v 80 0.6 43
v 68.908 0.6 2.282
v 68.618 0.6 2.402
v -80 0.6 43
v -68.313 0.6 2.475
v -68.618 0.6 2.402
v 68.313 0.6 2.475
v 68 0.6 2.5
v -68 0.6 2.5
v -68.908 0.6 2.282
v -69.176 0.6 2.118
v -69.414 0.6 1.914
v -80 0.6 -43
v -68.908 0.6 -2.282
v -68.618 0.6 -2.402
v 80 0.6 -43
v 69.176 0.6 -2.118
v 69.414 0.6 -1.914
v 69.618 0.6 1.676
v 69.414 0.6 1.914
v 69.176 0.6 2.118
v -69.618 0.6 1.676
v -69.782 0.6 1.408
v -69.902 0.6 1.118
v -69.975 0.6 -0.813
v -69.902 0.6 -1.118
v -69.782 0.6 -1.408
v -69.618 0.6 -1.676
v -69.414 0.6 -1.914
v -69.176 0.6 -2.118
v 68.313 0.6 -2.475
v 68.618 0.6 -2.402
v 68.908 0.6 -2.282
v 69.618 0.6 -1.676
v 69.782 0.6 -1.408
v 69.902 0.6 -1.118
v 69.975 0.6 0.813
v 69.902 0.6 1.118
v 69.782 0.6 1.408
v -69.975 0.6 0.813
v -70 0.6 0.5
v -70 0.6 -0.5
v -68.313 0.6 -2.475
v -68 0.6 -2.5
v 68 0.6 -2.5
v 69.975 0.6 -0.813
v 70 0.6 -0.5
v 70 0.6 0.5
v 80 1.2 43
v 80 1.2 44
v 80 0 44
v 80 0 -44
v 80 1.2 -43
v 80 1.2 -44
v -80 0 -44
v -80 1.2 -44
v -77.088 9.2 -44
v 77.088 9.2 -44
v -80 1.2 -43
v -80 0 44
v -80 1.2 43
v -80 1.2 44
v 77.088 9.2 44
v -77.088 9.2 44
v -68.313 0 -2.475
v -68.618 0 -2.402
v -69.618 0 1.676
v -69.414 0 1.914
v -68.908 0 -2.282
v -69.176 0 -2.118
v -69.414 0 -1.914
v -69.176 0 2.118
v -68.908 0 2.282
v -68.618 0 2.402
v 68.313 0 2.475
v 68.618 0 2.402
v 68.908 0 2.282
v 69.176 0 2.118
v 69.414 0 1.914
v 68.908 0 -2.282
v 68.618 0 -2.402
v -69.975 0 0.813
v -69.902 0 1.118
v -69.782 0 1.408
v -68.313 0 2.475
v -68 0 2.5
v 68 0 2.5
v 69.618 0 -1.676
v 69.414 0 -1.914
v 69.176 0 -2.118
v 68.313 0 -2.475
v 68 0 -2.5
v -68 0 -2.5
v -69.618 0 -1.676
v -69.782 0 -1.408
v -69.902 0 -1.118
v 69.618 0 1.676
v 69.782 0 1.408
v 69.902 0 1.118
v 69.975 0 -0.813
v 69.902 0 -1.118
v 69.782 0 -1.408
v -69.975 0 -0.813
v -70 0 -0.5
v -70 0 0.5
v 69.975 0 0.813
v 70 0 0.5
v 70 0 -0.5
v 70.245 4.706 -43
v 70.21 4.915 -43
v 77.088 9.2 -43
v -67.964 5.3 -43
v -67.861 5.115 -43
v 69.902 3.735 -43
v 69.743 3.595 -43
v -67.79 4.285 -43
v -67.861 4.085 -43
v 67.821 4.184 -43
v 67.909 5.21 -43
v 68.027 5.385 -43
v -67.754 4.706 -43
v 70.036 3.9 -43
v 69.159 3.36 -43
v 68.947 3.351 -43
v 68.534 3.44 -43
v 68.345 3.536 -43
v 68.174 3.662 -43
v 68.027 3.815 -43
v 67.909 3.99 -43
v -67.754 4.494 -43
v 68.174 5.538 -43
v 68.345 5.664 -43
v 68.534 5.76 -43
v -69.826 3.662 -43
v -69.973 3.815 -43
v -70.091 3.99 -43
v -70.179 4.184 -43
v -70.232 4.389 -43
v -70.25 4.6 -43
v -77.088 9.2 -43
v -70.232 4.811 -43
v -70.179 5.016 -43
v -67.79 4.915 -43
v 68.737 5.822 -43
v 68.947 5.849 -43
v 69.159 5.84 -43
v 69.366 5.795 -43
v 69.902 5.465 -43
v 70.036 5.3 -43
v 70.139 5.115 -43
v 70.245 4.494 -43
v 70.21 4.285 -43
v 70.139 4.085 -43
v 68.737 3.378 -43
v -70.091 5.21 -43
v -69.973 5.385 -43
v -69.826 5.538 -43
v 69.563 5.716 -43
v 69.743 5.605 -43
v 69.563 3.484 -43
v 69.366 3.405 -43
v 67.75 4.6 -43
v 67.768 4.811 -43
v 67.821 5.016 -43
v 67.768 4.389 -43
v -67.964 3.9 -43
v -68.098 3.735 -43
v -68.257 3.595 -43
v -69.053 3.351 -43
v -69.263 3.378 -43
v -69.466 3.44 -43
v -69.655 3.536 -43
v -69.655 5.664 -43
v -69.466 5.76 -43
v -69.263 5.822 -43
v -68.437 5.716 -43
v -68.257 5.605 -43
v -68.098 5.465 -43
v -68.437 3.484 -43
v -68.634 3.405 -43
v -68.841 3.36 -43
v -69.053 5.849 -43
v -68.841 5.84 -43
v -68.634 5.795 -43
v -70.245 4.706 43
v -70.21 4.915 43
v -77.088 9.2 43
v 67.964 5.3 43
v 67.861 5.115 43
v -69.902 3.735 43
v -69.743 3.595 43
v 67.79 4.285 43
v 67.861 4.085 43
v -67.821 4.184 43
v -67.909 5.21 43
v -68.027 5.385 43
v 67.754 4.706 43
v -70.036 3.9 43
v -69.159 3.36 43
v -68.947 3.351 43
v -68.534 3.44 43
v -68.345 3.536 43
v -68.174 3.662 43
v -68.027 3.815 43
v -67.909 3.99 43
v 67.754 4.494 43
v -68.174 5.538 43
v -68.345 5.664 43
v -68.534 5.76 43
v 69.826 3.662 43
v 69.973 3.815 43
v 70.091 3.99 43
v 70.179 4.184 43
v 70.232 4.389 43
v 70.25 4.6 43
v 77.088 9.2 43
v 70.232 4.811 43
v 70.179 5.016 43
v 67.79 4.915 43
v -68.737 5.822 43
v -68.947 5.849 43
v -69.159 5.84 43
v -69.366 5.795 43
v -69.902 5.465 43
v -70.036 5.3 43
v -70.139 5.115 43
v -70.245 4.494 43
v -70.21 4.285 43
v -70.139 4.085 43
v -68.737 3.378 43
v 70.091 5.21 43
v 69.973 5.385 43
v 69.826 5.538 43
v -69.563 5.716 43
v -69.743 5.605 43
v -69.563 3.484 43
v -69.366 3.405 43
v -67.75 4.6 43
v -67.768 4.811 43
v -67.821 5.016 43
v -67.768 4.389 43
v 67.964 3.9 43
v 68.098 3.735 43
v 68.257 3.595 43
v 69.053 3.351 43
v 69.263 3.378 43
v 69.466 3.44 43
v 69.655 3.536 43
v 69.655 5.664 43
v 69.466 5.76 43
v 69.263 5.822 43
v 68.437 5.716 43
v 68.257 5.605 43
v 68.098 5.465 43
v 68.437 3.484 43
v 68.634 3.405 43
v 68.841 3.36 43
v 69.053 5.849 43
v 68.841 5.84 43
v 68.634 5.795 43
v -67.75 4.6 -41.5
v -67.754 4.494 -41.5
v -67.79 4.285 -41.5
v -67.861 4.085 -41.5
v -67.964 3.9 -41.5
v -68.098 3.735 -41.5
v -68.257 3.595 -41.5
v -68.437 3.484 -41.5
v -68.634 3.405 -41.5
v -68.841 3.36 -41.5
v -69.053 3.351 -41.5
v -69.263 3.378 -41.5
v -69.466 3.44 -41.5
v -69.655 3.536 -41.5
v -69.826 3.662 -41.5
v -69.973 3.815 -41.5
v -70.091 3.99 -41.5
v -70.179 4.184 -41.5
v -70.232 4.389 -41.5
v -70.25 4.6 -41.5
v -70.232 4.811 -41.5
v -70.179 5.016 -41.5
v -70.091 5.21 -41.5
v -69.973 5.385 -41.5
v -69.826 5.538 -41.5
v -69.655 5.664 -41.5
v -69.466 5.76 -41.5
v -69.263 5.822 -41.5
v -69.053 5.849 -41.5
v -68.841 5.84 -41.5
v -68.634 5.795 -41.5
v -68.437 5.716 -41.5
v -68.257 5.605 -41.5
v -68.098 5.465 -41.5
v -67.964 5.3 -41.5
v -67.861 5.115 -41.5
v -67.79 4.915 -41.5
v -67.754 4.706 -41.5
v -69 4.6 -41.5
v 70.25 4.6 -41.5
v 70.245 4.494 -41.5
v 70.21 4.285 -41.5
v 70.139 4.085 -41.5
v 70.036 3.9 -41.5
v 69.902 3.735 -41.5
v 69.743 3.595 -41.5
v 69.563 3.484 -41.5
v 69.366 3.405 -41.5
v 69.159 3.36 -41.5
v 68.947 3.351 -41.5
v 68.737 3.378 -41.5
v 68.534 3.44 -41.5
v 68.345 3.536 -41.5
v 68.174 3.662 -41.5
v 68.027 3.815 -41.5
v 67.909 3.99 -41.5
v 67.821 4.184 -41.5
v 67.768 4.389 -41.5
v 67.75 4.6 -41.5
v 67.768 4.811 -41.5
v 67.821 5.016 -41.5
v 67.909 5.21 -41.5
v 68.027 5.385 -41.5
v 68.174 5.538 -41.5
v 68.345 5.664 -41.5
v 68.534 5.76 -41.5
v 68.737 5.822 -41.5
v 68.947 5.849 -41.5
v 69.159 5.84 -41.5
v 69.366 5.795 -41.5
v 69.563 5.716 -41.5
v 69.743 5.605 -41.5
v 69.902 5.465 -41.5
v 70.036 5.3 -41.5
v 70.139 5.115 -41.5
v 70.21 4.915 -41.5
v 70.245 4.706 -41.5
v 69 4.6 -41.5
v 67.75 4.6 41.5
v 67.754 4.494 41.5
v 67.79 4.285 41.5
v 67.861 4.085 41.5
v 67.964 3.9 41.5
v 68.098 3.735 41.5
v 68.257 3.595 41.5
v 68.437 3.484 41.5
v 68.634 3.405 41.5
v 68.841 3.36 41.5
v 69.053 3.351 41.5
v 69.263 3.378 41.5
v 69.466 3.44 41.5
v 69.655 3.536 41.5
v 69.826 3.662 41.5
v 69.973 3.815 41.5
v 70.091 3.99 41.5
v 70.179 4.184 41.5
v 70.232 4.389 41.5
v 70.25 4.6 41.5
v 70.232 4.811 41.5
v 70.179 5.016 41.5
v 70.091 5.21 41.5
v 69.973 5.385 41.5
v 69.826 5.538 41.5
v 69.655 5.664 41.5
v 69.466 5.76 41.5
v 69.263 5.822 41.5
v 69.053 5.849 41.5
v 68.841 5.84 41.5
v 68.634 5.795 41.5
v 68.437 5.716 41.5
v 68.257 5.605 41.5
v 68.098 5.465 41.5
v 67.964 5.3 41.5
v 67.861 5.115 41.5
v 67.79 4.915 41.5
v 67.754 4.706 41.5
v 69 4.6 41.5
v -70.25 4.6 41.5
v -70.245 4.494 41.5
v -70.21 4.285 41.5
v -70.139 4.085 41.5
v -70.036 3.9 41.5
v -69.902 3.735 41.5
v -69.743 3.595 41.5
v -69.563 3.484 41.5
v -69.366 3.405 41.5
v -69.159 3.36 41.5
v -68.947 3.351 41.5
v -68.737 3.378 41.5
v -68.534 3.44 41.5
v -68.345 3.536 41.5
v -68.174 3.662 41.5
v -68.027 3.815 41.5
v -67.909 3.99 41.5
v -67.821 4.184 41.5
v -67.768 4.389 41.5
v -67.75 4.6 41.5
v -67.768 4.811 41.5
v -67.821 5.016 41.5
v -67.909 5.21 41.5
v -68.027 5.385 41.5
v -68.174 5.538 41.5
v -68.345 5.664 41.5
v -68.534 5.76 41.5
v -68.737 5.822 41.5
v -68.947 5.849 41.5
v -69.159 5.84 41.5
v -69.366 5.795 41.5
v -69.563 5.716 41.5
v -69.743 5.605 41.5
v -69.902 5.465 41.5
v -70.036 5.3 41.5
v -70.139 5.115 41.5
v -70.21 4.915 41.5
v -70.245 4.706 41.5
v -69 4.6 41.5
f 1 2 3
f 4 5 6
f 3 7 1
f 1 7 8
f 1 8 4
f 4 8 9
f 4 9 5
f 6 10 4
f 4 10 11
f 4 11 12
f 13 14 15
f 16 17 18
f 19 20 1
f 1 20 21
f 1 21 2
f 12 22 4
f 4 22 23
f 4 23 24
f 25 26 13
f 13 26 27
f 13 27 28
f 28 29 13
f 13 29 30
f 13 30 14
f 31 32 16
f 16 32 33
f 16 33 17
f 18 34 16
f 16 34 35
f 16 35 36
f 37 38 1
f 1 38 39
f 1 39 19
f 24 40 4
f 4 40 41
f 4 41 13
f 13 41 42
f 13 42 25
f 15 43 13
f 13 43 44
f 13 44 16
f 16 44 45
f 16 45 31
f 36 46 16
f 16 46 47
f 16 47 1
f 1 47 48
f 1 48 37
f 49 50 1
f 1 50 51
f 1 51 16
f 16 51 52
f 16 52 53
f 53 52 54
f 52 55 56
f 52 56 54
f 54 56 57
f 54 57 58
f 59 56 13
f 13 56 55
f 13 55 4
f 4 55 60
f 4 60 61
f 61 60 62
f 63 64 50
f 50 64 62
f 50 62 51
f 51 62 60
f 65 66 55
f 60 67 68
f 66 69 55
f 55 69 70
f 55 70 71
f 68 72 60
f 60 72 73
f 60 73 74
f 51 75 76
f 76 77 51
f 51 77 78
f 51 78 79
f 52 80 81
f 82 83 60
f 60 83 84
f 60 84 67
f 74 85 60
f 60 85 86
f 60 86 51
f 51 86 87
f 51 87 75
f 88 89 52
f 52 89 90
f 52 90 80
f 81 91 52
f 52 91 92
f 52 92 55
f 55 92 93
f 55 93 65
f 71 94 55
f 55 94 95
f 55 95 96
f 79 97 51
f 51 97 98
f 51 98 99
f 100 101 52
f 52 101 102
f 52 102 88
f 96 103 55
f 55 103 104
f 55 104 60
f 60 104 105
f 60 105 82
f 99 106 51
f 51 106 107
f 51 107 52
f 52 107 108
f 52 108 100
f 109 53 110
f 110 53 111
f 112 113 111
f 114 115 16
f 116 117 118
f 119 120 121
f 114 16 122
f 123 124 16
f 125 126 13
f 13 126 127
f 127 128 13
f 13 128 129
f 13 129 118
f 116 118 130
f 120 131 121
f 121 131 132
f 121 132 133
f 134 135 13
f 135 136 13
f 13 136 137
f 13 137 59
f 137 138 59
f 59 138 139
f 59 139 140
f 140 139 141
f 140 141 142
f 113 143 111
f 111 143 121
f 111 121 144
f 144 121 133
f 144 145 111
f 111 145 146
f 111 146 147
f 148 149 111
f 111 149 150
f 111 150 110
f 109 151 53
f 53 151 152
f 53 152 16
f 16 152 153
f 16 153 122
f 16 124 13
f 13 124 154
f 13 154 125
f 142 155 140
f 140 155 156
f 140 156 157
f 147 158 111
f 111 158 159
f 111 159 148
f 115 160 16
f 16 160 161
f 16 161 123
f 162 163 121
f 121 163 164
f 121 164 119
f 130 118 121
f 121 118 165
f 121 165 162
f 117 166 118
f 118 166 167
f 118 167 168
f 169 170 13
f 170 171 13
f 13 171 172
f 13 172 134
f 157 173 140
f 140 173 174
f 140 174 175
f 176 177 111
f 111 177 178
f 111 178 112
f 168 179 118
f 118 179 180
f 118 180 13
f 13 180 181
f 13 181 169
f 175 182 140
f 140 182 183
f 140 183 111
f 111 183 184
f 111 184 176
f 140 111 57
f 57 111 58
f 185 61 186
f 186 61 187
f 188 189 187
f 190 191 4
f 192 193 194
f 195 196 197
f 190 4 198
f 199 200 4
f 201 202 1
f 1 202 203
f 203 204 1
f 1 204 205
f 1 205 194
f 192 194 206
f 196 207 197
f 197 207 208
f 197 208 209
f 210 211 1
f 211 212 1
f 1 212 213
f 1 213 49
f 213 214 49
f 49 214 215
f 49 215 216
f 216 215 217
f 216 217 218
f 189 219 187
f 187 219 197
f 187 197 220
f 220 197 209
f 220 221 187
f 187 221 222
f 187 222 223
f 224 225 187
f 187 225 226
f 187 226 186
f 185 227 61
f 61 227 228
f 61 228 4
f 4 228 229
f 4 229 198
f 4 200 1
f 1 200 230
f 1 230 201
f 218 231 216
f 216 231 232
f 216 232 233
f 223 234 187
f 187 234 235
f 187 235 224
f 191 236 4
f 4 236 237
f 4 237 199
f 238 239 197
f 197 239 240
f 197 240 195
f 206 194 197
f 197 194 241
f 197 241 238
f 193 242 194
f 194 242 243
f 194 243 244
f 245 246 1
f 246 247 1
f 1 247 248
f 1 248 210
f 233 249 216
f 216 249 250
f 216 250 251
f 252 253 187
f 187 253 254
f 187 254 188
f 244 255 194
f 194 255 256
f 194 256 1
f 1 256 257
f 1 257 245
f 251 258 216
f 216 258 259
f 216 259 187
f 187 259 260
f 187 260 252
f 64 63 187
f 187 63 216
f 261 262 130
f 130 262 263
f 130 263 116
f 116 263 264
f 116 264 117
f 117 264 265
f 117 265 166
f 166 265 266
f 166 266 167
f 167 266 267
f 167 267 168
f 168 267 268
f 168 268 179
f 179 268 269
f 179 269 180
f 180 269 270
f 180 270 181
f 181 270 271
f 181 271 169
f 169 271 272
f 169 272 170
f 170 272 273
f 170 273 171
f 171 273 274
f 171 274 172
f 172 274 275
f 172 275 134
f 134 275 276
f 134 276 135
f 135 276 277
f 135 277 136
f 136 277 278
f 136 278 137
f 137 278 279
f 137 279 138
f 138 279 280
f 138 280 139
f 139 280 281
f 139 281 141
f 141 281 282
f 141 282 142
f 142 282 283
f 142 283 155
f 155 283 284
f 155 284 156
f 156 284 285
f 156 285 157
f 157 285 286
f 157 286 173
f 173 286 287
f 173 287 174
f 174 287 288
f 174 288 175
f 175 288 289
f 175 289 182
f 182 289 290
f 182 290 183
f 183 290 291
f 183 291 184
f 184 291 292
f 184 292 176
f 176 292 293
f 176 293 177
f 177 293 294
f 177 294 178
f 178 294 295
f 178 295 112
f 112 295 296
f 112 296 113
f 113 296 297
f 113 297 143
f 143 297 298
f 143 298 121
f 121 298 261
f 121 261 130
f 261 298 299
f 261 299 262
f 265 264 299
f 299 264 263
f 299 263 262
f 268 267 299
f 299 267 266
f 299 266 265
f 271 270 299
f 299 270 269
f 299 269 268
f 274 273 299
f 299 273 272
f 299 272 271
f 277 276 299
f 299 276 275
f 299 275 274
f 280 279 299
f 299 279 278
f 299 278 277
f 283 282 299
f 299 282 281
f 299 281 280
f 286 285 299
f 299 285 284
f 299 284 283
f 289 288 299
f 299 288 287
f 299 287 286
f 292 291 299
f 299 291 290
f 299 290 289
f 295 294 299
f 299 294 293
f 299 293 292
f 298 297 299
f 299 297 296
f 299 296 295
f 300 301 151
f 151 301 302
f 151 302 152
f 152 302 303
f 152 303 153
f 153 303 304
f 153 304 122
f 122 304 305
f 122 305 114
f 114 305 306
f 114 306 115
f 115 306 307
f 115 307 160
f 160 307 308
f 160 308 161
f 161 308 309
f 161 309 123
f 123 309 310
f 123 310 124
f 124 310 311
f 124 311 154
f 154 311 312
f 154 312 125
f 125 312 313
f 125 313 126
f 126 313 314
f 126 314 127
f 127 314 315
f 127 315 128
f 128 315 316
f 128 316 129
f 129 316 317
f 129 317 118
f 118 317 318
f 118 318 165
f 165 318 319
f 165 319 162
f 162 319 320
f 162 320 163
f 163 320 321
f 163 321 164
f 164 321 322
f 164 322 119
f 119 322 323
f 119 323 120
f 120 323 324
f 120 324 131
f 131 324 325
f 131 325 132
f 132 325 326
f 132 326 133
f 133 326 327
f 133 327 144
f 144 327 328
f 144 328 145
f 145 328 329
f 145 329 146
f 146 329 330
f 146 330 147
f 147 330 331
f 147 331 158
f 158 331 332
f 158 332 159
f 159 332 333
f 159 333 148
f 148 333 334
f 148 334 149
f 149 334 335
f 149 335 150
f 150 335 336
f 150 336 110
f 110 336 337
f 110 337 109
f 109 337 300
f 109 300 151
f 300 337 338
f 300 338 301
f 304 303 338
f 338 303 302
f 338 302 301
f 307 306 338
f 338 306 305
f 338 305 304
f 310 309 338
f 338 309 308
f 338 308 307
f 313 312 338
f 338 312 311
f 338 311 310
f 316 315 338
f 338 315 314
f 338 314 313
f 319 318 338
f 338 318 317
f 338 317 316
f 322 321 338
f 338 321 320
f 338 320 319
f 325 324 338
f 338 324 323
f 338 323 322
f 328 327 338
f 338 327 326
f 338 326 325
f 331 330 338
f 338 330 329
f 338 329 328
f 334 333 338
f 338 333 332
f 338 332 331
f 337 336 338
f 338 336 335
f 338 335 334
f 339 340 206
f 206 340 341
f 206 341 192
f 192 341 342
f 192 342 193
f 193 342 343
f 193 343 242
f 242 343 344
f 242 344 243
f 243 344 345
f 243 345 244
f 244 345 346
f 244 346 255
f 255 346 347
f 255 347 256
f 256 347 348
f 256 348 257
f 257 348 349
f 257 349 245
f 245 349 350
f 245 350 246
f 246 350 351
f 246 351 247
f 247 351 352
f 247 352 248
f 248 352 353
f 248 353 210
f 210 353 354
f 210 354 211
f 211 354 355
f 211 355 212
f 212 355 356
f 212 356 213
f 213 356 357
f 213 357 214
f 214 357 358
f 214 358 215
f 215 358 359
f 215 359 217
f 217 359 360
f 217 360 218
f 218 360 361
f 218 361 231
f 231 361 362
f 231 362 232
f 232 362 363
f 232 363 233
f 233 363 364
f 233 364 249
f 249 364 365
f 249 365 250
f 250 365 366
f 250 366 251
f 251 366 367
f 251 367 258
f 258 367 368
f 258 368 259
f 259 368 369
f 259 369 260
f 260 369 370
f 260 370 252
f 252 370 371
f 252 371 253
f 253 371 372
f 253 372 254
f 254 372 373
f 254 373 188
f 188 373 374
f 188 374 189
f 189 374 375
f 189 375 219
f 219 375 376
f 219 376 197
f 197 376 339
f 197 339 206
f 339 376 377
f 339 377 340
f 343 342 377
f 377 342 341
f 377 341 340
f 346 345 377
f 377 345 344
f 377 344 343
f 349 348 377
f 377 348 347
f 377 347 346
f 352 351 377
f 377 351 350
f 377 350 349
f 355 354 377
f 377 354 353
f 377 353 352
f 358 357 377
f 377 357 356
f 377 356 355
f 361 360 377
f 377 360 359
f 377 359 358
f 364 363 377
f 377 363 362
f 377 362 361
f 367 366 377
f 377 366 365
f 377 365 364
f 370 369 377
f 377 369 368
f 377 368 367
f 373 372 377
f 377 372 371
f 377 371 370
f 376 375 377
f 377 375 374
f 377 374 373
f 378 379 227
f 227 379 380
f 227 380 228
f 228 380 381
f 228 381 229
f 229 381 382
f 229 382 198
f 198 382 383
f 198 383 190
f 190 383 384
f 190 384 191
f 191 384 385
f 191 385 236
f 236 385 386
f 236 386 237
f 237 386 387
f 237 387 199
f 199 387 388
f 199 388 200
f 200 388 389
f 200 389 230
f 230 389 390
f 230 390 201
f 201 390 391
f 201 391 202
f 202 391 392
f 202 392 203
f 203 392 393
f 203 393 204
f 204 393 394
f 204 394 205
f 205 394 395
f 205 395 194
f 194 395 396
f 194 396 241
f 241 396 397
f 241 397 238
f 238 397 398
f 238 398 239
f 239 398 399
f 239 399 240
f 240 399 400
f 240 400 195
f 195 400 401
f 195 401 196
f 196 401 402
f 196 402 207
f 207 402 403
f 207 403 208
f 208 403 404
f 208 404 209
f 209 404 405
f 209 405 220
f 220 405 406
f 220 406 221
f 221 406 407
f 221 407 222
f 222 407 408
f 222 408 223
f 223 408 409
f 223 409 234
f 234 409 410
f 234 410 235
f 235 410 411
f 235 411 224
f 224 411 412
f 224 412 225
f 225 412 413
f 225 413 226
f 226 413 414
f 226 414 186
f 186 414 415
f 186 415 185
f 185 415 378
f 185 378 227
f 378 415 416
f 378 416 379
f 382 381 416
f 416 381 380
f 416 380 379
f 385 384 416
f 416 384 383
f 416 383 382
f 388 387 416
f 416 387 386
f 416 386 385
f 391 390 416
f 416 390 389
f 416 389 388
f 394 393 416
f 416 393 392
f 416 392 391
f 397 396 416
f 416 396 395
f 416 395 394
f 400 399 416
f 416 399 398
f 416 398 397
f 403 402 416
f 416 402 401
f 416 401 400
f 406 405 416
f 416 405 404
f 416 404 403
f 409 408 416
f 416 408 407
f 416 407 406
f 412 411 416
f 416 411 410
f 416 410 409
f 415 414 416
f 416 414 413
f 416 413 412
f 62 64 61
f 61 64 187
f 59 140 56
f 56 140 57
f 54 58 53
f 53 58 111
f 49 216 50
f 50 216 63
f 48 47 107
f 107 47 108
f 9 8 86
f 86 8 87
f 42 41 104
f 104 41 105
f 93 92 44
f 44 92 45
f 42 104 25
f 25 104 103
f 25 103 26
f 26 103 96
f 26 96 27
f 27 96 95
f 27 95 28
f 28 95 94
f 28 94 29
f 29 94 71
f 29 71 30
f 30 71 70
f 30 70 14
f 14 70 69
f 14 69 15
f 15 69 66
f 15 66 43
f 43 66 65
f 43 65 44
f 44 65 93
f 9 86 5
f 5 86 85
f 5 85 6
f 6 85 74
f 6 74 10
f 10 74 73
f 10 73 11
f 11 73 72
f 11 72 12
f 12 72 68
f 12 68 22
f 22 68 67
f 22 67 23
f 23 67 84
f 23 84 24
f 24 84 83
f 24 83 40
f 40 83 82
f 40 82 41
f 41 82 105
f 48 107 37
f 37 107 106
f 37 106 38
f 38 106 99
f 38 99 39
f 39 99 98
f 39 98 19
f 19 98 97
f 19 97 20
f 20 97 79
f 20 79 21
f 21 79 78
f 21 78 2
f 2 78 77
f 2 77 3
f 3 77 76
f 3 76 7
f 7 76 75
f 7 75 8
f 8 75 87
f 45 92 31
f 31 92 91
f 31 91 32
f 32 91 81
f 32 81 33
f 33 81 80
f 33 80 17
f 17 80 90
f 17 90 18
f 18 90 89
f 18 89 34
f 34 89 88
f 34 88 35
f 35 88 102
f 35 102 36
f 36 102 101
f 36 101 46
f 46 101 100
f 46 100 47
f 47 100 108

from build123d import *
from OCP.BRepFilletAPI import BRepFilletAPI_MakeChamfer

# Parameters (mm, degrees)
SKETCH1_W           = 160
SKETCH1_H           = 88
BOSS_EXTRUDE1_DEPTH = 0.6
SKETCH2_W           = 160
SKETCH2_H           = 1
BOSS_EXTRUDE2_DEPTH = 8.6
SKETCH3_R           = 1.25
BOSS_EXTRUDE3_DEPTH = 1.5
BOSS_EXTRUDE4_START = 1.5
SKETCH4_R           = 1.25
BOSS_EXTRUDE4_DEPTH = 1.5
CHAMFER1_SIZE       = 8
CHAMFER1_SIZE2      = 2.911761874
SKETCH5_W           = 140
SKETCH5_H           = 5
CUT_EXTRUDE1_DEPTH  = 1.5
FILLET1_R           = 2


with BuildPart() as part:
    # Sketch1 → Boss-Extrude1 (new body)
    with BuildSketch(Plane(origin=(0, 0, 0), x_dir=(1, 0, 0), z_dir=(0, 1, 0))):
        Rectangle(SKETCH1_W, SKETCH1_H)
    extrude(amount=BOSS_EXTRUDE1_DEPTH)

    # Sketch2 → Boss-Extrude2 (add)
    with BuildSketch(Plane(origin=(0, 0.6, 0), x_dir=(1, 0, 0), z_dir=(0, 1, 0))):
        with Locations((0, 43.5)):
            Rectangle(SKETCH2_W, SKETCH2_H)
        with Locations((0, -43.5)):
            Rectangle(SKETCH2_W, SKETCH2_H)
    extrude(amount=BOSS_EXTRUDE2_DEPTH)

    # Sketch3 → Boss-Extrude3 (add)
    with BuildSketch(Plane.XY.offset(-43)):
        with Locations(Location((-69, 4.6, 0), (0, 0, 180))):
            Circle(SKETCH3_R)
        with Locations(Location((69, 4.6, 0), (0, 0, 180))):
            Circle(SKETCH3_R)
    extrude(amount=BOSS_EXTRUDE3_DEPTH)

    # Sketch4 → Boss-Extrude4 (add)
    with BuildSketch(Plane(origin=(0, 0, 43), x_dir=(-1, 0, 0), z_dir=(0, 0, -1)).offset(BOSS_EXTRUDE4_START)):
        with Locations((-69, 4.6)):
            Circle(SKETCH4_R)
        with Locations((69, 4.6)):
            Circle(SKETCH4_R)
    extrude(amount=-BOSS_EXTRUDE4_DEPTH)

    # Chamfer1: one chamfer whose edges measure the first distance from different faces: ONE call of the kernel's chamfer builder (chamfer() names one face for all edges)
    chamfer1_edges_1 = [part.edges().sort_by_distance(p)[0] for p in [
        (-80, 9.2, -43.5),
        (-80, 9.2, 43.5),
    ]]
    chamfer1_side_1 = [part.faces().sort_by_distance(p)[0] for p in [
        (-80, 4.6, -43.115203978),
    ]]
    chamfer1_edges_2 = [part.edges().sort_by_distance(p)[0] for p in [
        (80, 9.2, -43.5),
        (80, 9.2, 43.5),
    ]]
    chamfer1_side_2 = [part.faces().sort_by_distance(p)[0] for p in [
        (80, 4.6, 43.115203978),
    ]]
    chamfer1 = BRepFilletAPI_MakeChamfer(part.part.solid().wrapped)
    for e in chamfer1_edges_1:
        chamfer1.Add(CHAMFER1_SIZE, CHAMFER1_SIZE2, e.wrapped, chamfer1_side_1[0].wrapped)  # the first distance lies on this face
    for e in chamfer1_edges_2:
        chamfer1.Add(CHAMFER1_SIZE, CHAMFER1_SIZE2, e.wrapped, chamfer1_side_2[0].wrapped)  # the first distance lies on this face
    add(Compound.cast(chamfer1.Shape()), mode=Mode.REPLACE)

    # Sketch5 → Cut-Extrude1 (cut)
    with BuildSketch(Plane(origin=(0, 0.6, 0), x_dir=(1, 0, 0), z_dir=(0, 1, 0))):
        Rectangle(SKETCH5_W, SKETCH5_H)
    extrude(amount=-CUT_EXTRUDE1_DEPTH, mode=Mode.SUBTRACT)

    # Fillet1
    fillet1_edges = [part.edges().sort_by_distance(p)[0] for p in [
        (70, 0.3, -2.5),
        (70, 0.3, 2.5),
        (-70, 0.3, 2.5),
        (-70, 0.3, -2.5),
    ]]
    fillet(fillet1_edges, radius=FILLET1_R)


solid = part.part
